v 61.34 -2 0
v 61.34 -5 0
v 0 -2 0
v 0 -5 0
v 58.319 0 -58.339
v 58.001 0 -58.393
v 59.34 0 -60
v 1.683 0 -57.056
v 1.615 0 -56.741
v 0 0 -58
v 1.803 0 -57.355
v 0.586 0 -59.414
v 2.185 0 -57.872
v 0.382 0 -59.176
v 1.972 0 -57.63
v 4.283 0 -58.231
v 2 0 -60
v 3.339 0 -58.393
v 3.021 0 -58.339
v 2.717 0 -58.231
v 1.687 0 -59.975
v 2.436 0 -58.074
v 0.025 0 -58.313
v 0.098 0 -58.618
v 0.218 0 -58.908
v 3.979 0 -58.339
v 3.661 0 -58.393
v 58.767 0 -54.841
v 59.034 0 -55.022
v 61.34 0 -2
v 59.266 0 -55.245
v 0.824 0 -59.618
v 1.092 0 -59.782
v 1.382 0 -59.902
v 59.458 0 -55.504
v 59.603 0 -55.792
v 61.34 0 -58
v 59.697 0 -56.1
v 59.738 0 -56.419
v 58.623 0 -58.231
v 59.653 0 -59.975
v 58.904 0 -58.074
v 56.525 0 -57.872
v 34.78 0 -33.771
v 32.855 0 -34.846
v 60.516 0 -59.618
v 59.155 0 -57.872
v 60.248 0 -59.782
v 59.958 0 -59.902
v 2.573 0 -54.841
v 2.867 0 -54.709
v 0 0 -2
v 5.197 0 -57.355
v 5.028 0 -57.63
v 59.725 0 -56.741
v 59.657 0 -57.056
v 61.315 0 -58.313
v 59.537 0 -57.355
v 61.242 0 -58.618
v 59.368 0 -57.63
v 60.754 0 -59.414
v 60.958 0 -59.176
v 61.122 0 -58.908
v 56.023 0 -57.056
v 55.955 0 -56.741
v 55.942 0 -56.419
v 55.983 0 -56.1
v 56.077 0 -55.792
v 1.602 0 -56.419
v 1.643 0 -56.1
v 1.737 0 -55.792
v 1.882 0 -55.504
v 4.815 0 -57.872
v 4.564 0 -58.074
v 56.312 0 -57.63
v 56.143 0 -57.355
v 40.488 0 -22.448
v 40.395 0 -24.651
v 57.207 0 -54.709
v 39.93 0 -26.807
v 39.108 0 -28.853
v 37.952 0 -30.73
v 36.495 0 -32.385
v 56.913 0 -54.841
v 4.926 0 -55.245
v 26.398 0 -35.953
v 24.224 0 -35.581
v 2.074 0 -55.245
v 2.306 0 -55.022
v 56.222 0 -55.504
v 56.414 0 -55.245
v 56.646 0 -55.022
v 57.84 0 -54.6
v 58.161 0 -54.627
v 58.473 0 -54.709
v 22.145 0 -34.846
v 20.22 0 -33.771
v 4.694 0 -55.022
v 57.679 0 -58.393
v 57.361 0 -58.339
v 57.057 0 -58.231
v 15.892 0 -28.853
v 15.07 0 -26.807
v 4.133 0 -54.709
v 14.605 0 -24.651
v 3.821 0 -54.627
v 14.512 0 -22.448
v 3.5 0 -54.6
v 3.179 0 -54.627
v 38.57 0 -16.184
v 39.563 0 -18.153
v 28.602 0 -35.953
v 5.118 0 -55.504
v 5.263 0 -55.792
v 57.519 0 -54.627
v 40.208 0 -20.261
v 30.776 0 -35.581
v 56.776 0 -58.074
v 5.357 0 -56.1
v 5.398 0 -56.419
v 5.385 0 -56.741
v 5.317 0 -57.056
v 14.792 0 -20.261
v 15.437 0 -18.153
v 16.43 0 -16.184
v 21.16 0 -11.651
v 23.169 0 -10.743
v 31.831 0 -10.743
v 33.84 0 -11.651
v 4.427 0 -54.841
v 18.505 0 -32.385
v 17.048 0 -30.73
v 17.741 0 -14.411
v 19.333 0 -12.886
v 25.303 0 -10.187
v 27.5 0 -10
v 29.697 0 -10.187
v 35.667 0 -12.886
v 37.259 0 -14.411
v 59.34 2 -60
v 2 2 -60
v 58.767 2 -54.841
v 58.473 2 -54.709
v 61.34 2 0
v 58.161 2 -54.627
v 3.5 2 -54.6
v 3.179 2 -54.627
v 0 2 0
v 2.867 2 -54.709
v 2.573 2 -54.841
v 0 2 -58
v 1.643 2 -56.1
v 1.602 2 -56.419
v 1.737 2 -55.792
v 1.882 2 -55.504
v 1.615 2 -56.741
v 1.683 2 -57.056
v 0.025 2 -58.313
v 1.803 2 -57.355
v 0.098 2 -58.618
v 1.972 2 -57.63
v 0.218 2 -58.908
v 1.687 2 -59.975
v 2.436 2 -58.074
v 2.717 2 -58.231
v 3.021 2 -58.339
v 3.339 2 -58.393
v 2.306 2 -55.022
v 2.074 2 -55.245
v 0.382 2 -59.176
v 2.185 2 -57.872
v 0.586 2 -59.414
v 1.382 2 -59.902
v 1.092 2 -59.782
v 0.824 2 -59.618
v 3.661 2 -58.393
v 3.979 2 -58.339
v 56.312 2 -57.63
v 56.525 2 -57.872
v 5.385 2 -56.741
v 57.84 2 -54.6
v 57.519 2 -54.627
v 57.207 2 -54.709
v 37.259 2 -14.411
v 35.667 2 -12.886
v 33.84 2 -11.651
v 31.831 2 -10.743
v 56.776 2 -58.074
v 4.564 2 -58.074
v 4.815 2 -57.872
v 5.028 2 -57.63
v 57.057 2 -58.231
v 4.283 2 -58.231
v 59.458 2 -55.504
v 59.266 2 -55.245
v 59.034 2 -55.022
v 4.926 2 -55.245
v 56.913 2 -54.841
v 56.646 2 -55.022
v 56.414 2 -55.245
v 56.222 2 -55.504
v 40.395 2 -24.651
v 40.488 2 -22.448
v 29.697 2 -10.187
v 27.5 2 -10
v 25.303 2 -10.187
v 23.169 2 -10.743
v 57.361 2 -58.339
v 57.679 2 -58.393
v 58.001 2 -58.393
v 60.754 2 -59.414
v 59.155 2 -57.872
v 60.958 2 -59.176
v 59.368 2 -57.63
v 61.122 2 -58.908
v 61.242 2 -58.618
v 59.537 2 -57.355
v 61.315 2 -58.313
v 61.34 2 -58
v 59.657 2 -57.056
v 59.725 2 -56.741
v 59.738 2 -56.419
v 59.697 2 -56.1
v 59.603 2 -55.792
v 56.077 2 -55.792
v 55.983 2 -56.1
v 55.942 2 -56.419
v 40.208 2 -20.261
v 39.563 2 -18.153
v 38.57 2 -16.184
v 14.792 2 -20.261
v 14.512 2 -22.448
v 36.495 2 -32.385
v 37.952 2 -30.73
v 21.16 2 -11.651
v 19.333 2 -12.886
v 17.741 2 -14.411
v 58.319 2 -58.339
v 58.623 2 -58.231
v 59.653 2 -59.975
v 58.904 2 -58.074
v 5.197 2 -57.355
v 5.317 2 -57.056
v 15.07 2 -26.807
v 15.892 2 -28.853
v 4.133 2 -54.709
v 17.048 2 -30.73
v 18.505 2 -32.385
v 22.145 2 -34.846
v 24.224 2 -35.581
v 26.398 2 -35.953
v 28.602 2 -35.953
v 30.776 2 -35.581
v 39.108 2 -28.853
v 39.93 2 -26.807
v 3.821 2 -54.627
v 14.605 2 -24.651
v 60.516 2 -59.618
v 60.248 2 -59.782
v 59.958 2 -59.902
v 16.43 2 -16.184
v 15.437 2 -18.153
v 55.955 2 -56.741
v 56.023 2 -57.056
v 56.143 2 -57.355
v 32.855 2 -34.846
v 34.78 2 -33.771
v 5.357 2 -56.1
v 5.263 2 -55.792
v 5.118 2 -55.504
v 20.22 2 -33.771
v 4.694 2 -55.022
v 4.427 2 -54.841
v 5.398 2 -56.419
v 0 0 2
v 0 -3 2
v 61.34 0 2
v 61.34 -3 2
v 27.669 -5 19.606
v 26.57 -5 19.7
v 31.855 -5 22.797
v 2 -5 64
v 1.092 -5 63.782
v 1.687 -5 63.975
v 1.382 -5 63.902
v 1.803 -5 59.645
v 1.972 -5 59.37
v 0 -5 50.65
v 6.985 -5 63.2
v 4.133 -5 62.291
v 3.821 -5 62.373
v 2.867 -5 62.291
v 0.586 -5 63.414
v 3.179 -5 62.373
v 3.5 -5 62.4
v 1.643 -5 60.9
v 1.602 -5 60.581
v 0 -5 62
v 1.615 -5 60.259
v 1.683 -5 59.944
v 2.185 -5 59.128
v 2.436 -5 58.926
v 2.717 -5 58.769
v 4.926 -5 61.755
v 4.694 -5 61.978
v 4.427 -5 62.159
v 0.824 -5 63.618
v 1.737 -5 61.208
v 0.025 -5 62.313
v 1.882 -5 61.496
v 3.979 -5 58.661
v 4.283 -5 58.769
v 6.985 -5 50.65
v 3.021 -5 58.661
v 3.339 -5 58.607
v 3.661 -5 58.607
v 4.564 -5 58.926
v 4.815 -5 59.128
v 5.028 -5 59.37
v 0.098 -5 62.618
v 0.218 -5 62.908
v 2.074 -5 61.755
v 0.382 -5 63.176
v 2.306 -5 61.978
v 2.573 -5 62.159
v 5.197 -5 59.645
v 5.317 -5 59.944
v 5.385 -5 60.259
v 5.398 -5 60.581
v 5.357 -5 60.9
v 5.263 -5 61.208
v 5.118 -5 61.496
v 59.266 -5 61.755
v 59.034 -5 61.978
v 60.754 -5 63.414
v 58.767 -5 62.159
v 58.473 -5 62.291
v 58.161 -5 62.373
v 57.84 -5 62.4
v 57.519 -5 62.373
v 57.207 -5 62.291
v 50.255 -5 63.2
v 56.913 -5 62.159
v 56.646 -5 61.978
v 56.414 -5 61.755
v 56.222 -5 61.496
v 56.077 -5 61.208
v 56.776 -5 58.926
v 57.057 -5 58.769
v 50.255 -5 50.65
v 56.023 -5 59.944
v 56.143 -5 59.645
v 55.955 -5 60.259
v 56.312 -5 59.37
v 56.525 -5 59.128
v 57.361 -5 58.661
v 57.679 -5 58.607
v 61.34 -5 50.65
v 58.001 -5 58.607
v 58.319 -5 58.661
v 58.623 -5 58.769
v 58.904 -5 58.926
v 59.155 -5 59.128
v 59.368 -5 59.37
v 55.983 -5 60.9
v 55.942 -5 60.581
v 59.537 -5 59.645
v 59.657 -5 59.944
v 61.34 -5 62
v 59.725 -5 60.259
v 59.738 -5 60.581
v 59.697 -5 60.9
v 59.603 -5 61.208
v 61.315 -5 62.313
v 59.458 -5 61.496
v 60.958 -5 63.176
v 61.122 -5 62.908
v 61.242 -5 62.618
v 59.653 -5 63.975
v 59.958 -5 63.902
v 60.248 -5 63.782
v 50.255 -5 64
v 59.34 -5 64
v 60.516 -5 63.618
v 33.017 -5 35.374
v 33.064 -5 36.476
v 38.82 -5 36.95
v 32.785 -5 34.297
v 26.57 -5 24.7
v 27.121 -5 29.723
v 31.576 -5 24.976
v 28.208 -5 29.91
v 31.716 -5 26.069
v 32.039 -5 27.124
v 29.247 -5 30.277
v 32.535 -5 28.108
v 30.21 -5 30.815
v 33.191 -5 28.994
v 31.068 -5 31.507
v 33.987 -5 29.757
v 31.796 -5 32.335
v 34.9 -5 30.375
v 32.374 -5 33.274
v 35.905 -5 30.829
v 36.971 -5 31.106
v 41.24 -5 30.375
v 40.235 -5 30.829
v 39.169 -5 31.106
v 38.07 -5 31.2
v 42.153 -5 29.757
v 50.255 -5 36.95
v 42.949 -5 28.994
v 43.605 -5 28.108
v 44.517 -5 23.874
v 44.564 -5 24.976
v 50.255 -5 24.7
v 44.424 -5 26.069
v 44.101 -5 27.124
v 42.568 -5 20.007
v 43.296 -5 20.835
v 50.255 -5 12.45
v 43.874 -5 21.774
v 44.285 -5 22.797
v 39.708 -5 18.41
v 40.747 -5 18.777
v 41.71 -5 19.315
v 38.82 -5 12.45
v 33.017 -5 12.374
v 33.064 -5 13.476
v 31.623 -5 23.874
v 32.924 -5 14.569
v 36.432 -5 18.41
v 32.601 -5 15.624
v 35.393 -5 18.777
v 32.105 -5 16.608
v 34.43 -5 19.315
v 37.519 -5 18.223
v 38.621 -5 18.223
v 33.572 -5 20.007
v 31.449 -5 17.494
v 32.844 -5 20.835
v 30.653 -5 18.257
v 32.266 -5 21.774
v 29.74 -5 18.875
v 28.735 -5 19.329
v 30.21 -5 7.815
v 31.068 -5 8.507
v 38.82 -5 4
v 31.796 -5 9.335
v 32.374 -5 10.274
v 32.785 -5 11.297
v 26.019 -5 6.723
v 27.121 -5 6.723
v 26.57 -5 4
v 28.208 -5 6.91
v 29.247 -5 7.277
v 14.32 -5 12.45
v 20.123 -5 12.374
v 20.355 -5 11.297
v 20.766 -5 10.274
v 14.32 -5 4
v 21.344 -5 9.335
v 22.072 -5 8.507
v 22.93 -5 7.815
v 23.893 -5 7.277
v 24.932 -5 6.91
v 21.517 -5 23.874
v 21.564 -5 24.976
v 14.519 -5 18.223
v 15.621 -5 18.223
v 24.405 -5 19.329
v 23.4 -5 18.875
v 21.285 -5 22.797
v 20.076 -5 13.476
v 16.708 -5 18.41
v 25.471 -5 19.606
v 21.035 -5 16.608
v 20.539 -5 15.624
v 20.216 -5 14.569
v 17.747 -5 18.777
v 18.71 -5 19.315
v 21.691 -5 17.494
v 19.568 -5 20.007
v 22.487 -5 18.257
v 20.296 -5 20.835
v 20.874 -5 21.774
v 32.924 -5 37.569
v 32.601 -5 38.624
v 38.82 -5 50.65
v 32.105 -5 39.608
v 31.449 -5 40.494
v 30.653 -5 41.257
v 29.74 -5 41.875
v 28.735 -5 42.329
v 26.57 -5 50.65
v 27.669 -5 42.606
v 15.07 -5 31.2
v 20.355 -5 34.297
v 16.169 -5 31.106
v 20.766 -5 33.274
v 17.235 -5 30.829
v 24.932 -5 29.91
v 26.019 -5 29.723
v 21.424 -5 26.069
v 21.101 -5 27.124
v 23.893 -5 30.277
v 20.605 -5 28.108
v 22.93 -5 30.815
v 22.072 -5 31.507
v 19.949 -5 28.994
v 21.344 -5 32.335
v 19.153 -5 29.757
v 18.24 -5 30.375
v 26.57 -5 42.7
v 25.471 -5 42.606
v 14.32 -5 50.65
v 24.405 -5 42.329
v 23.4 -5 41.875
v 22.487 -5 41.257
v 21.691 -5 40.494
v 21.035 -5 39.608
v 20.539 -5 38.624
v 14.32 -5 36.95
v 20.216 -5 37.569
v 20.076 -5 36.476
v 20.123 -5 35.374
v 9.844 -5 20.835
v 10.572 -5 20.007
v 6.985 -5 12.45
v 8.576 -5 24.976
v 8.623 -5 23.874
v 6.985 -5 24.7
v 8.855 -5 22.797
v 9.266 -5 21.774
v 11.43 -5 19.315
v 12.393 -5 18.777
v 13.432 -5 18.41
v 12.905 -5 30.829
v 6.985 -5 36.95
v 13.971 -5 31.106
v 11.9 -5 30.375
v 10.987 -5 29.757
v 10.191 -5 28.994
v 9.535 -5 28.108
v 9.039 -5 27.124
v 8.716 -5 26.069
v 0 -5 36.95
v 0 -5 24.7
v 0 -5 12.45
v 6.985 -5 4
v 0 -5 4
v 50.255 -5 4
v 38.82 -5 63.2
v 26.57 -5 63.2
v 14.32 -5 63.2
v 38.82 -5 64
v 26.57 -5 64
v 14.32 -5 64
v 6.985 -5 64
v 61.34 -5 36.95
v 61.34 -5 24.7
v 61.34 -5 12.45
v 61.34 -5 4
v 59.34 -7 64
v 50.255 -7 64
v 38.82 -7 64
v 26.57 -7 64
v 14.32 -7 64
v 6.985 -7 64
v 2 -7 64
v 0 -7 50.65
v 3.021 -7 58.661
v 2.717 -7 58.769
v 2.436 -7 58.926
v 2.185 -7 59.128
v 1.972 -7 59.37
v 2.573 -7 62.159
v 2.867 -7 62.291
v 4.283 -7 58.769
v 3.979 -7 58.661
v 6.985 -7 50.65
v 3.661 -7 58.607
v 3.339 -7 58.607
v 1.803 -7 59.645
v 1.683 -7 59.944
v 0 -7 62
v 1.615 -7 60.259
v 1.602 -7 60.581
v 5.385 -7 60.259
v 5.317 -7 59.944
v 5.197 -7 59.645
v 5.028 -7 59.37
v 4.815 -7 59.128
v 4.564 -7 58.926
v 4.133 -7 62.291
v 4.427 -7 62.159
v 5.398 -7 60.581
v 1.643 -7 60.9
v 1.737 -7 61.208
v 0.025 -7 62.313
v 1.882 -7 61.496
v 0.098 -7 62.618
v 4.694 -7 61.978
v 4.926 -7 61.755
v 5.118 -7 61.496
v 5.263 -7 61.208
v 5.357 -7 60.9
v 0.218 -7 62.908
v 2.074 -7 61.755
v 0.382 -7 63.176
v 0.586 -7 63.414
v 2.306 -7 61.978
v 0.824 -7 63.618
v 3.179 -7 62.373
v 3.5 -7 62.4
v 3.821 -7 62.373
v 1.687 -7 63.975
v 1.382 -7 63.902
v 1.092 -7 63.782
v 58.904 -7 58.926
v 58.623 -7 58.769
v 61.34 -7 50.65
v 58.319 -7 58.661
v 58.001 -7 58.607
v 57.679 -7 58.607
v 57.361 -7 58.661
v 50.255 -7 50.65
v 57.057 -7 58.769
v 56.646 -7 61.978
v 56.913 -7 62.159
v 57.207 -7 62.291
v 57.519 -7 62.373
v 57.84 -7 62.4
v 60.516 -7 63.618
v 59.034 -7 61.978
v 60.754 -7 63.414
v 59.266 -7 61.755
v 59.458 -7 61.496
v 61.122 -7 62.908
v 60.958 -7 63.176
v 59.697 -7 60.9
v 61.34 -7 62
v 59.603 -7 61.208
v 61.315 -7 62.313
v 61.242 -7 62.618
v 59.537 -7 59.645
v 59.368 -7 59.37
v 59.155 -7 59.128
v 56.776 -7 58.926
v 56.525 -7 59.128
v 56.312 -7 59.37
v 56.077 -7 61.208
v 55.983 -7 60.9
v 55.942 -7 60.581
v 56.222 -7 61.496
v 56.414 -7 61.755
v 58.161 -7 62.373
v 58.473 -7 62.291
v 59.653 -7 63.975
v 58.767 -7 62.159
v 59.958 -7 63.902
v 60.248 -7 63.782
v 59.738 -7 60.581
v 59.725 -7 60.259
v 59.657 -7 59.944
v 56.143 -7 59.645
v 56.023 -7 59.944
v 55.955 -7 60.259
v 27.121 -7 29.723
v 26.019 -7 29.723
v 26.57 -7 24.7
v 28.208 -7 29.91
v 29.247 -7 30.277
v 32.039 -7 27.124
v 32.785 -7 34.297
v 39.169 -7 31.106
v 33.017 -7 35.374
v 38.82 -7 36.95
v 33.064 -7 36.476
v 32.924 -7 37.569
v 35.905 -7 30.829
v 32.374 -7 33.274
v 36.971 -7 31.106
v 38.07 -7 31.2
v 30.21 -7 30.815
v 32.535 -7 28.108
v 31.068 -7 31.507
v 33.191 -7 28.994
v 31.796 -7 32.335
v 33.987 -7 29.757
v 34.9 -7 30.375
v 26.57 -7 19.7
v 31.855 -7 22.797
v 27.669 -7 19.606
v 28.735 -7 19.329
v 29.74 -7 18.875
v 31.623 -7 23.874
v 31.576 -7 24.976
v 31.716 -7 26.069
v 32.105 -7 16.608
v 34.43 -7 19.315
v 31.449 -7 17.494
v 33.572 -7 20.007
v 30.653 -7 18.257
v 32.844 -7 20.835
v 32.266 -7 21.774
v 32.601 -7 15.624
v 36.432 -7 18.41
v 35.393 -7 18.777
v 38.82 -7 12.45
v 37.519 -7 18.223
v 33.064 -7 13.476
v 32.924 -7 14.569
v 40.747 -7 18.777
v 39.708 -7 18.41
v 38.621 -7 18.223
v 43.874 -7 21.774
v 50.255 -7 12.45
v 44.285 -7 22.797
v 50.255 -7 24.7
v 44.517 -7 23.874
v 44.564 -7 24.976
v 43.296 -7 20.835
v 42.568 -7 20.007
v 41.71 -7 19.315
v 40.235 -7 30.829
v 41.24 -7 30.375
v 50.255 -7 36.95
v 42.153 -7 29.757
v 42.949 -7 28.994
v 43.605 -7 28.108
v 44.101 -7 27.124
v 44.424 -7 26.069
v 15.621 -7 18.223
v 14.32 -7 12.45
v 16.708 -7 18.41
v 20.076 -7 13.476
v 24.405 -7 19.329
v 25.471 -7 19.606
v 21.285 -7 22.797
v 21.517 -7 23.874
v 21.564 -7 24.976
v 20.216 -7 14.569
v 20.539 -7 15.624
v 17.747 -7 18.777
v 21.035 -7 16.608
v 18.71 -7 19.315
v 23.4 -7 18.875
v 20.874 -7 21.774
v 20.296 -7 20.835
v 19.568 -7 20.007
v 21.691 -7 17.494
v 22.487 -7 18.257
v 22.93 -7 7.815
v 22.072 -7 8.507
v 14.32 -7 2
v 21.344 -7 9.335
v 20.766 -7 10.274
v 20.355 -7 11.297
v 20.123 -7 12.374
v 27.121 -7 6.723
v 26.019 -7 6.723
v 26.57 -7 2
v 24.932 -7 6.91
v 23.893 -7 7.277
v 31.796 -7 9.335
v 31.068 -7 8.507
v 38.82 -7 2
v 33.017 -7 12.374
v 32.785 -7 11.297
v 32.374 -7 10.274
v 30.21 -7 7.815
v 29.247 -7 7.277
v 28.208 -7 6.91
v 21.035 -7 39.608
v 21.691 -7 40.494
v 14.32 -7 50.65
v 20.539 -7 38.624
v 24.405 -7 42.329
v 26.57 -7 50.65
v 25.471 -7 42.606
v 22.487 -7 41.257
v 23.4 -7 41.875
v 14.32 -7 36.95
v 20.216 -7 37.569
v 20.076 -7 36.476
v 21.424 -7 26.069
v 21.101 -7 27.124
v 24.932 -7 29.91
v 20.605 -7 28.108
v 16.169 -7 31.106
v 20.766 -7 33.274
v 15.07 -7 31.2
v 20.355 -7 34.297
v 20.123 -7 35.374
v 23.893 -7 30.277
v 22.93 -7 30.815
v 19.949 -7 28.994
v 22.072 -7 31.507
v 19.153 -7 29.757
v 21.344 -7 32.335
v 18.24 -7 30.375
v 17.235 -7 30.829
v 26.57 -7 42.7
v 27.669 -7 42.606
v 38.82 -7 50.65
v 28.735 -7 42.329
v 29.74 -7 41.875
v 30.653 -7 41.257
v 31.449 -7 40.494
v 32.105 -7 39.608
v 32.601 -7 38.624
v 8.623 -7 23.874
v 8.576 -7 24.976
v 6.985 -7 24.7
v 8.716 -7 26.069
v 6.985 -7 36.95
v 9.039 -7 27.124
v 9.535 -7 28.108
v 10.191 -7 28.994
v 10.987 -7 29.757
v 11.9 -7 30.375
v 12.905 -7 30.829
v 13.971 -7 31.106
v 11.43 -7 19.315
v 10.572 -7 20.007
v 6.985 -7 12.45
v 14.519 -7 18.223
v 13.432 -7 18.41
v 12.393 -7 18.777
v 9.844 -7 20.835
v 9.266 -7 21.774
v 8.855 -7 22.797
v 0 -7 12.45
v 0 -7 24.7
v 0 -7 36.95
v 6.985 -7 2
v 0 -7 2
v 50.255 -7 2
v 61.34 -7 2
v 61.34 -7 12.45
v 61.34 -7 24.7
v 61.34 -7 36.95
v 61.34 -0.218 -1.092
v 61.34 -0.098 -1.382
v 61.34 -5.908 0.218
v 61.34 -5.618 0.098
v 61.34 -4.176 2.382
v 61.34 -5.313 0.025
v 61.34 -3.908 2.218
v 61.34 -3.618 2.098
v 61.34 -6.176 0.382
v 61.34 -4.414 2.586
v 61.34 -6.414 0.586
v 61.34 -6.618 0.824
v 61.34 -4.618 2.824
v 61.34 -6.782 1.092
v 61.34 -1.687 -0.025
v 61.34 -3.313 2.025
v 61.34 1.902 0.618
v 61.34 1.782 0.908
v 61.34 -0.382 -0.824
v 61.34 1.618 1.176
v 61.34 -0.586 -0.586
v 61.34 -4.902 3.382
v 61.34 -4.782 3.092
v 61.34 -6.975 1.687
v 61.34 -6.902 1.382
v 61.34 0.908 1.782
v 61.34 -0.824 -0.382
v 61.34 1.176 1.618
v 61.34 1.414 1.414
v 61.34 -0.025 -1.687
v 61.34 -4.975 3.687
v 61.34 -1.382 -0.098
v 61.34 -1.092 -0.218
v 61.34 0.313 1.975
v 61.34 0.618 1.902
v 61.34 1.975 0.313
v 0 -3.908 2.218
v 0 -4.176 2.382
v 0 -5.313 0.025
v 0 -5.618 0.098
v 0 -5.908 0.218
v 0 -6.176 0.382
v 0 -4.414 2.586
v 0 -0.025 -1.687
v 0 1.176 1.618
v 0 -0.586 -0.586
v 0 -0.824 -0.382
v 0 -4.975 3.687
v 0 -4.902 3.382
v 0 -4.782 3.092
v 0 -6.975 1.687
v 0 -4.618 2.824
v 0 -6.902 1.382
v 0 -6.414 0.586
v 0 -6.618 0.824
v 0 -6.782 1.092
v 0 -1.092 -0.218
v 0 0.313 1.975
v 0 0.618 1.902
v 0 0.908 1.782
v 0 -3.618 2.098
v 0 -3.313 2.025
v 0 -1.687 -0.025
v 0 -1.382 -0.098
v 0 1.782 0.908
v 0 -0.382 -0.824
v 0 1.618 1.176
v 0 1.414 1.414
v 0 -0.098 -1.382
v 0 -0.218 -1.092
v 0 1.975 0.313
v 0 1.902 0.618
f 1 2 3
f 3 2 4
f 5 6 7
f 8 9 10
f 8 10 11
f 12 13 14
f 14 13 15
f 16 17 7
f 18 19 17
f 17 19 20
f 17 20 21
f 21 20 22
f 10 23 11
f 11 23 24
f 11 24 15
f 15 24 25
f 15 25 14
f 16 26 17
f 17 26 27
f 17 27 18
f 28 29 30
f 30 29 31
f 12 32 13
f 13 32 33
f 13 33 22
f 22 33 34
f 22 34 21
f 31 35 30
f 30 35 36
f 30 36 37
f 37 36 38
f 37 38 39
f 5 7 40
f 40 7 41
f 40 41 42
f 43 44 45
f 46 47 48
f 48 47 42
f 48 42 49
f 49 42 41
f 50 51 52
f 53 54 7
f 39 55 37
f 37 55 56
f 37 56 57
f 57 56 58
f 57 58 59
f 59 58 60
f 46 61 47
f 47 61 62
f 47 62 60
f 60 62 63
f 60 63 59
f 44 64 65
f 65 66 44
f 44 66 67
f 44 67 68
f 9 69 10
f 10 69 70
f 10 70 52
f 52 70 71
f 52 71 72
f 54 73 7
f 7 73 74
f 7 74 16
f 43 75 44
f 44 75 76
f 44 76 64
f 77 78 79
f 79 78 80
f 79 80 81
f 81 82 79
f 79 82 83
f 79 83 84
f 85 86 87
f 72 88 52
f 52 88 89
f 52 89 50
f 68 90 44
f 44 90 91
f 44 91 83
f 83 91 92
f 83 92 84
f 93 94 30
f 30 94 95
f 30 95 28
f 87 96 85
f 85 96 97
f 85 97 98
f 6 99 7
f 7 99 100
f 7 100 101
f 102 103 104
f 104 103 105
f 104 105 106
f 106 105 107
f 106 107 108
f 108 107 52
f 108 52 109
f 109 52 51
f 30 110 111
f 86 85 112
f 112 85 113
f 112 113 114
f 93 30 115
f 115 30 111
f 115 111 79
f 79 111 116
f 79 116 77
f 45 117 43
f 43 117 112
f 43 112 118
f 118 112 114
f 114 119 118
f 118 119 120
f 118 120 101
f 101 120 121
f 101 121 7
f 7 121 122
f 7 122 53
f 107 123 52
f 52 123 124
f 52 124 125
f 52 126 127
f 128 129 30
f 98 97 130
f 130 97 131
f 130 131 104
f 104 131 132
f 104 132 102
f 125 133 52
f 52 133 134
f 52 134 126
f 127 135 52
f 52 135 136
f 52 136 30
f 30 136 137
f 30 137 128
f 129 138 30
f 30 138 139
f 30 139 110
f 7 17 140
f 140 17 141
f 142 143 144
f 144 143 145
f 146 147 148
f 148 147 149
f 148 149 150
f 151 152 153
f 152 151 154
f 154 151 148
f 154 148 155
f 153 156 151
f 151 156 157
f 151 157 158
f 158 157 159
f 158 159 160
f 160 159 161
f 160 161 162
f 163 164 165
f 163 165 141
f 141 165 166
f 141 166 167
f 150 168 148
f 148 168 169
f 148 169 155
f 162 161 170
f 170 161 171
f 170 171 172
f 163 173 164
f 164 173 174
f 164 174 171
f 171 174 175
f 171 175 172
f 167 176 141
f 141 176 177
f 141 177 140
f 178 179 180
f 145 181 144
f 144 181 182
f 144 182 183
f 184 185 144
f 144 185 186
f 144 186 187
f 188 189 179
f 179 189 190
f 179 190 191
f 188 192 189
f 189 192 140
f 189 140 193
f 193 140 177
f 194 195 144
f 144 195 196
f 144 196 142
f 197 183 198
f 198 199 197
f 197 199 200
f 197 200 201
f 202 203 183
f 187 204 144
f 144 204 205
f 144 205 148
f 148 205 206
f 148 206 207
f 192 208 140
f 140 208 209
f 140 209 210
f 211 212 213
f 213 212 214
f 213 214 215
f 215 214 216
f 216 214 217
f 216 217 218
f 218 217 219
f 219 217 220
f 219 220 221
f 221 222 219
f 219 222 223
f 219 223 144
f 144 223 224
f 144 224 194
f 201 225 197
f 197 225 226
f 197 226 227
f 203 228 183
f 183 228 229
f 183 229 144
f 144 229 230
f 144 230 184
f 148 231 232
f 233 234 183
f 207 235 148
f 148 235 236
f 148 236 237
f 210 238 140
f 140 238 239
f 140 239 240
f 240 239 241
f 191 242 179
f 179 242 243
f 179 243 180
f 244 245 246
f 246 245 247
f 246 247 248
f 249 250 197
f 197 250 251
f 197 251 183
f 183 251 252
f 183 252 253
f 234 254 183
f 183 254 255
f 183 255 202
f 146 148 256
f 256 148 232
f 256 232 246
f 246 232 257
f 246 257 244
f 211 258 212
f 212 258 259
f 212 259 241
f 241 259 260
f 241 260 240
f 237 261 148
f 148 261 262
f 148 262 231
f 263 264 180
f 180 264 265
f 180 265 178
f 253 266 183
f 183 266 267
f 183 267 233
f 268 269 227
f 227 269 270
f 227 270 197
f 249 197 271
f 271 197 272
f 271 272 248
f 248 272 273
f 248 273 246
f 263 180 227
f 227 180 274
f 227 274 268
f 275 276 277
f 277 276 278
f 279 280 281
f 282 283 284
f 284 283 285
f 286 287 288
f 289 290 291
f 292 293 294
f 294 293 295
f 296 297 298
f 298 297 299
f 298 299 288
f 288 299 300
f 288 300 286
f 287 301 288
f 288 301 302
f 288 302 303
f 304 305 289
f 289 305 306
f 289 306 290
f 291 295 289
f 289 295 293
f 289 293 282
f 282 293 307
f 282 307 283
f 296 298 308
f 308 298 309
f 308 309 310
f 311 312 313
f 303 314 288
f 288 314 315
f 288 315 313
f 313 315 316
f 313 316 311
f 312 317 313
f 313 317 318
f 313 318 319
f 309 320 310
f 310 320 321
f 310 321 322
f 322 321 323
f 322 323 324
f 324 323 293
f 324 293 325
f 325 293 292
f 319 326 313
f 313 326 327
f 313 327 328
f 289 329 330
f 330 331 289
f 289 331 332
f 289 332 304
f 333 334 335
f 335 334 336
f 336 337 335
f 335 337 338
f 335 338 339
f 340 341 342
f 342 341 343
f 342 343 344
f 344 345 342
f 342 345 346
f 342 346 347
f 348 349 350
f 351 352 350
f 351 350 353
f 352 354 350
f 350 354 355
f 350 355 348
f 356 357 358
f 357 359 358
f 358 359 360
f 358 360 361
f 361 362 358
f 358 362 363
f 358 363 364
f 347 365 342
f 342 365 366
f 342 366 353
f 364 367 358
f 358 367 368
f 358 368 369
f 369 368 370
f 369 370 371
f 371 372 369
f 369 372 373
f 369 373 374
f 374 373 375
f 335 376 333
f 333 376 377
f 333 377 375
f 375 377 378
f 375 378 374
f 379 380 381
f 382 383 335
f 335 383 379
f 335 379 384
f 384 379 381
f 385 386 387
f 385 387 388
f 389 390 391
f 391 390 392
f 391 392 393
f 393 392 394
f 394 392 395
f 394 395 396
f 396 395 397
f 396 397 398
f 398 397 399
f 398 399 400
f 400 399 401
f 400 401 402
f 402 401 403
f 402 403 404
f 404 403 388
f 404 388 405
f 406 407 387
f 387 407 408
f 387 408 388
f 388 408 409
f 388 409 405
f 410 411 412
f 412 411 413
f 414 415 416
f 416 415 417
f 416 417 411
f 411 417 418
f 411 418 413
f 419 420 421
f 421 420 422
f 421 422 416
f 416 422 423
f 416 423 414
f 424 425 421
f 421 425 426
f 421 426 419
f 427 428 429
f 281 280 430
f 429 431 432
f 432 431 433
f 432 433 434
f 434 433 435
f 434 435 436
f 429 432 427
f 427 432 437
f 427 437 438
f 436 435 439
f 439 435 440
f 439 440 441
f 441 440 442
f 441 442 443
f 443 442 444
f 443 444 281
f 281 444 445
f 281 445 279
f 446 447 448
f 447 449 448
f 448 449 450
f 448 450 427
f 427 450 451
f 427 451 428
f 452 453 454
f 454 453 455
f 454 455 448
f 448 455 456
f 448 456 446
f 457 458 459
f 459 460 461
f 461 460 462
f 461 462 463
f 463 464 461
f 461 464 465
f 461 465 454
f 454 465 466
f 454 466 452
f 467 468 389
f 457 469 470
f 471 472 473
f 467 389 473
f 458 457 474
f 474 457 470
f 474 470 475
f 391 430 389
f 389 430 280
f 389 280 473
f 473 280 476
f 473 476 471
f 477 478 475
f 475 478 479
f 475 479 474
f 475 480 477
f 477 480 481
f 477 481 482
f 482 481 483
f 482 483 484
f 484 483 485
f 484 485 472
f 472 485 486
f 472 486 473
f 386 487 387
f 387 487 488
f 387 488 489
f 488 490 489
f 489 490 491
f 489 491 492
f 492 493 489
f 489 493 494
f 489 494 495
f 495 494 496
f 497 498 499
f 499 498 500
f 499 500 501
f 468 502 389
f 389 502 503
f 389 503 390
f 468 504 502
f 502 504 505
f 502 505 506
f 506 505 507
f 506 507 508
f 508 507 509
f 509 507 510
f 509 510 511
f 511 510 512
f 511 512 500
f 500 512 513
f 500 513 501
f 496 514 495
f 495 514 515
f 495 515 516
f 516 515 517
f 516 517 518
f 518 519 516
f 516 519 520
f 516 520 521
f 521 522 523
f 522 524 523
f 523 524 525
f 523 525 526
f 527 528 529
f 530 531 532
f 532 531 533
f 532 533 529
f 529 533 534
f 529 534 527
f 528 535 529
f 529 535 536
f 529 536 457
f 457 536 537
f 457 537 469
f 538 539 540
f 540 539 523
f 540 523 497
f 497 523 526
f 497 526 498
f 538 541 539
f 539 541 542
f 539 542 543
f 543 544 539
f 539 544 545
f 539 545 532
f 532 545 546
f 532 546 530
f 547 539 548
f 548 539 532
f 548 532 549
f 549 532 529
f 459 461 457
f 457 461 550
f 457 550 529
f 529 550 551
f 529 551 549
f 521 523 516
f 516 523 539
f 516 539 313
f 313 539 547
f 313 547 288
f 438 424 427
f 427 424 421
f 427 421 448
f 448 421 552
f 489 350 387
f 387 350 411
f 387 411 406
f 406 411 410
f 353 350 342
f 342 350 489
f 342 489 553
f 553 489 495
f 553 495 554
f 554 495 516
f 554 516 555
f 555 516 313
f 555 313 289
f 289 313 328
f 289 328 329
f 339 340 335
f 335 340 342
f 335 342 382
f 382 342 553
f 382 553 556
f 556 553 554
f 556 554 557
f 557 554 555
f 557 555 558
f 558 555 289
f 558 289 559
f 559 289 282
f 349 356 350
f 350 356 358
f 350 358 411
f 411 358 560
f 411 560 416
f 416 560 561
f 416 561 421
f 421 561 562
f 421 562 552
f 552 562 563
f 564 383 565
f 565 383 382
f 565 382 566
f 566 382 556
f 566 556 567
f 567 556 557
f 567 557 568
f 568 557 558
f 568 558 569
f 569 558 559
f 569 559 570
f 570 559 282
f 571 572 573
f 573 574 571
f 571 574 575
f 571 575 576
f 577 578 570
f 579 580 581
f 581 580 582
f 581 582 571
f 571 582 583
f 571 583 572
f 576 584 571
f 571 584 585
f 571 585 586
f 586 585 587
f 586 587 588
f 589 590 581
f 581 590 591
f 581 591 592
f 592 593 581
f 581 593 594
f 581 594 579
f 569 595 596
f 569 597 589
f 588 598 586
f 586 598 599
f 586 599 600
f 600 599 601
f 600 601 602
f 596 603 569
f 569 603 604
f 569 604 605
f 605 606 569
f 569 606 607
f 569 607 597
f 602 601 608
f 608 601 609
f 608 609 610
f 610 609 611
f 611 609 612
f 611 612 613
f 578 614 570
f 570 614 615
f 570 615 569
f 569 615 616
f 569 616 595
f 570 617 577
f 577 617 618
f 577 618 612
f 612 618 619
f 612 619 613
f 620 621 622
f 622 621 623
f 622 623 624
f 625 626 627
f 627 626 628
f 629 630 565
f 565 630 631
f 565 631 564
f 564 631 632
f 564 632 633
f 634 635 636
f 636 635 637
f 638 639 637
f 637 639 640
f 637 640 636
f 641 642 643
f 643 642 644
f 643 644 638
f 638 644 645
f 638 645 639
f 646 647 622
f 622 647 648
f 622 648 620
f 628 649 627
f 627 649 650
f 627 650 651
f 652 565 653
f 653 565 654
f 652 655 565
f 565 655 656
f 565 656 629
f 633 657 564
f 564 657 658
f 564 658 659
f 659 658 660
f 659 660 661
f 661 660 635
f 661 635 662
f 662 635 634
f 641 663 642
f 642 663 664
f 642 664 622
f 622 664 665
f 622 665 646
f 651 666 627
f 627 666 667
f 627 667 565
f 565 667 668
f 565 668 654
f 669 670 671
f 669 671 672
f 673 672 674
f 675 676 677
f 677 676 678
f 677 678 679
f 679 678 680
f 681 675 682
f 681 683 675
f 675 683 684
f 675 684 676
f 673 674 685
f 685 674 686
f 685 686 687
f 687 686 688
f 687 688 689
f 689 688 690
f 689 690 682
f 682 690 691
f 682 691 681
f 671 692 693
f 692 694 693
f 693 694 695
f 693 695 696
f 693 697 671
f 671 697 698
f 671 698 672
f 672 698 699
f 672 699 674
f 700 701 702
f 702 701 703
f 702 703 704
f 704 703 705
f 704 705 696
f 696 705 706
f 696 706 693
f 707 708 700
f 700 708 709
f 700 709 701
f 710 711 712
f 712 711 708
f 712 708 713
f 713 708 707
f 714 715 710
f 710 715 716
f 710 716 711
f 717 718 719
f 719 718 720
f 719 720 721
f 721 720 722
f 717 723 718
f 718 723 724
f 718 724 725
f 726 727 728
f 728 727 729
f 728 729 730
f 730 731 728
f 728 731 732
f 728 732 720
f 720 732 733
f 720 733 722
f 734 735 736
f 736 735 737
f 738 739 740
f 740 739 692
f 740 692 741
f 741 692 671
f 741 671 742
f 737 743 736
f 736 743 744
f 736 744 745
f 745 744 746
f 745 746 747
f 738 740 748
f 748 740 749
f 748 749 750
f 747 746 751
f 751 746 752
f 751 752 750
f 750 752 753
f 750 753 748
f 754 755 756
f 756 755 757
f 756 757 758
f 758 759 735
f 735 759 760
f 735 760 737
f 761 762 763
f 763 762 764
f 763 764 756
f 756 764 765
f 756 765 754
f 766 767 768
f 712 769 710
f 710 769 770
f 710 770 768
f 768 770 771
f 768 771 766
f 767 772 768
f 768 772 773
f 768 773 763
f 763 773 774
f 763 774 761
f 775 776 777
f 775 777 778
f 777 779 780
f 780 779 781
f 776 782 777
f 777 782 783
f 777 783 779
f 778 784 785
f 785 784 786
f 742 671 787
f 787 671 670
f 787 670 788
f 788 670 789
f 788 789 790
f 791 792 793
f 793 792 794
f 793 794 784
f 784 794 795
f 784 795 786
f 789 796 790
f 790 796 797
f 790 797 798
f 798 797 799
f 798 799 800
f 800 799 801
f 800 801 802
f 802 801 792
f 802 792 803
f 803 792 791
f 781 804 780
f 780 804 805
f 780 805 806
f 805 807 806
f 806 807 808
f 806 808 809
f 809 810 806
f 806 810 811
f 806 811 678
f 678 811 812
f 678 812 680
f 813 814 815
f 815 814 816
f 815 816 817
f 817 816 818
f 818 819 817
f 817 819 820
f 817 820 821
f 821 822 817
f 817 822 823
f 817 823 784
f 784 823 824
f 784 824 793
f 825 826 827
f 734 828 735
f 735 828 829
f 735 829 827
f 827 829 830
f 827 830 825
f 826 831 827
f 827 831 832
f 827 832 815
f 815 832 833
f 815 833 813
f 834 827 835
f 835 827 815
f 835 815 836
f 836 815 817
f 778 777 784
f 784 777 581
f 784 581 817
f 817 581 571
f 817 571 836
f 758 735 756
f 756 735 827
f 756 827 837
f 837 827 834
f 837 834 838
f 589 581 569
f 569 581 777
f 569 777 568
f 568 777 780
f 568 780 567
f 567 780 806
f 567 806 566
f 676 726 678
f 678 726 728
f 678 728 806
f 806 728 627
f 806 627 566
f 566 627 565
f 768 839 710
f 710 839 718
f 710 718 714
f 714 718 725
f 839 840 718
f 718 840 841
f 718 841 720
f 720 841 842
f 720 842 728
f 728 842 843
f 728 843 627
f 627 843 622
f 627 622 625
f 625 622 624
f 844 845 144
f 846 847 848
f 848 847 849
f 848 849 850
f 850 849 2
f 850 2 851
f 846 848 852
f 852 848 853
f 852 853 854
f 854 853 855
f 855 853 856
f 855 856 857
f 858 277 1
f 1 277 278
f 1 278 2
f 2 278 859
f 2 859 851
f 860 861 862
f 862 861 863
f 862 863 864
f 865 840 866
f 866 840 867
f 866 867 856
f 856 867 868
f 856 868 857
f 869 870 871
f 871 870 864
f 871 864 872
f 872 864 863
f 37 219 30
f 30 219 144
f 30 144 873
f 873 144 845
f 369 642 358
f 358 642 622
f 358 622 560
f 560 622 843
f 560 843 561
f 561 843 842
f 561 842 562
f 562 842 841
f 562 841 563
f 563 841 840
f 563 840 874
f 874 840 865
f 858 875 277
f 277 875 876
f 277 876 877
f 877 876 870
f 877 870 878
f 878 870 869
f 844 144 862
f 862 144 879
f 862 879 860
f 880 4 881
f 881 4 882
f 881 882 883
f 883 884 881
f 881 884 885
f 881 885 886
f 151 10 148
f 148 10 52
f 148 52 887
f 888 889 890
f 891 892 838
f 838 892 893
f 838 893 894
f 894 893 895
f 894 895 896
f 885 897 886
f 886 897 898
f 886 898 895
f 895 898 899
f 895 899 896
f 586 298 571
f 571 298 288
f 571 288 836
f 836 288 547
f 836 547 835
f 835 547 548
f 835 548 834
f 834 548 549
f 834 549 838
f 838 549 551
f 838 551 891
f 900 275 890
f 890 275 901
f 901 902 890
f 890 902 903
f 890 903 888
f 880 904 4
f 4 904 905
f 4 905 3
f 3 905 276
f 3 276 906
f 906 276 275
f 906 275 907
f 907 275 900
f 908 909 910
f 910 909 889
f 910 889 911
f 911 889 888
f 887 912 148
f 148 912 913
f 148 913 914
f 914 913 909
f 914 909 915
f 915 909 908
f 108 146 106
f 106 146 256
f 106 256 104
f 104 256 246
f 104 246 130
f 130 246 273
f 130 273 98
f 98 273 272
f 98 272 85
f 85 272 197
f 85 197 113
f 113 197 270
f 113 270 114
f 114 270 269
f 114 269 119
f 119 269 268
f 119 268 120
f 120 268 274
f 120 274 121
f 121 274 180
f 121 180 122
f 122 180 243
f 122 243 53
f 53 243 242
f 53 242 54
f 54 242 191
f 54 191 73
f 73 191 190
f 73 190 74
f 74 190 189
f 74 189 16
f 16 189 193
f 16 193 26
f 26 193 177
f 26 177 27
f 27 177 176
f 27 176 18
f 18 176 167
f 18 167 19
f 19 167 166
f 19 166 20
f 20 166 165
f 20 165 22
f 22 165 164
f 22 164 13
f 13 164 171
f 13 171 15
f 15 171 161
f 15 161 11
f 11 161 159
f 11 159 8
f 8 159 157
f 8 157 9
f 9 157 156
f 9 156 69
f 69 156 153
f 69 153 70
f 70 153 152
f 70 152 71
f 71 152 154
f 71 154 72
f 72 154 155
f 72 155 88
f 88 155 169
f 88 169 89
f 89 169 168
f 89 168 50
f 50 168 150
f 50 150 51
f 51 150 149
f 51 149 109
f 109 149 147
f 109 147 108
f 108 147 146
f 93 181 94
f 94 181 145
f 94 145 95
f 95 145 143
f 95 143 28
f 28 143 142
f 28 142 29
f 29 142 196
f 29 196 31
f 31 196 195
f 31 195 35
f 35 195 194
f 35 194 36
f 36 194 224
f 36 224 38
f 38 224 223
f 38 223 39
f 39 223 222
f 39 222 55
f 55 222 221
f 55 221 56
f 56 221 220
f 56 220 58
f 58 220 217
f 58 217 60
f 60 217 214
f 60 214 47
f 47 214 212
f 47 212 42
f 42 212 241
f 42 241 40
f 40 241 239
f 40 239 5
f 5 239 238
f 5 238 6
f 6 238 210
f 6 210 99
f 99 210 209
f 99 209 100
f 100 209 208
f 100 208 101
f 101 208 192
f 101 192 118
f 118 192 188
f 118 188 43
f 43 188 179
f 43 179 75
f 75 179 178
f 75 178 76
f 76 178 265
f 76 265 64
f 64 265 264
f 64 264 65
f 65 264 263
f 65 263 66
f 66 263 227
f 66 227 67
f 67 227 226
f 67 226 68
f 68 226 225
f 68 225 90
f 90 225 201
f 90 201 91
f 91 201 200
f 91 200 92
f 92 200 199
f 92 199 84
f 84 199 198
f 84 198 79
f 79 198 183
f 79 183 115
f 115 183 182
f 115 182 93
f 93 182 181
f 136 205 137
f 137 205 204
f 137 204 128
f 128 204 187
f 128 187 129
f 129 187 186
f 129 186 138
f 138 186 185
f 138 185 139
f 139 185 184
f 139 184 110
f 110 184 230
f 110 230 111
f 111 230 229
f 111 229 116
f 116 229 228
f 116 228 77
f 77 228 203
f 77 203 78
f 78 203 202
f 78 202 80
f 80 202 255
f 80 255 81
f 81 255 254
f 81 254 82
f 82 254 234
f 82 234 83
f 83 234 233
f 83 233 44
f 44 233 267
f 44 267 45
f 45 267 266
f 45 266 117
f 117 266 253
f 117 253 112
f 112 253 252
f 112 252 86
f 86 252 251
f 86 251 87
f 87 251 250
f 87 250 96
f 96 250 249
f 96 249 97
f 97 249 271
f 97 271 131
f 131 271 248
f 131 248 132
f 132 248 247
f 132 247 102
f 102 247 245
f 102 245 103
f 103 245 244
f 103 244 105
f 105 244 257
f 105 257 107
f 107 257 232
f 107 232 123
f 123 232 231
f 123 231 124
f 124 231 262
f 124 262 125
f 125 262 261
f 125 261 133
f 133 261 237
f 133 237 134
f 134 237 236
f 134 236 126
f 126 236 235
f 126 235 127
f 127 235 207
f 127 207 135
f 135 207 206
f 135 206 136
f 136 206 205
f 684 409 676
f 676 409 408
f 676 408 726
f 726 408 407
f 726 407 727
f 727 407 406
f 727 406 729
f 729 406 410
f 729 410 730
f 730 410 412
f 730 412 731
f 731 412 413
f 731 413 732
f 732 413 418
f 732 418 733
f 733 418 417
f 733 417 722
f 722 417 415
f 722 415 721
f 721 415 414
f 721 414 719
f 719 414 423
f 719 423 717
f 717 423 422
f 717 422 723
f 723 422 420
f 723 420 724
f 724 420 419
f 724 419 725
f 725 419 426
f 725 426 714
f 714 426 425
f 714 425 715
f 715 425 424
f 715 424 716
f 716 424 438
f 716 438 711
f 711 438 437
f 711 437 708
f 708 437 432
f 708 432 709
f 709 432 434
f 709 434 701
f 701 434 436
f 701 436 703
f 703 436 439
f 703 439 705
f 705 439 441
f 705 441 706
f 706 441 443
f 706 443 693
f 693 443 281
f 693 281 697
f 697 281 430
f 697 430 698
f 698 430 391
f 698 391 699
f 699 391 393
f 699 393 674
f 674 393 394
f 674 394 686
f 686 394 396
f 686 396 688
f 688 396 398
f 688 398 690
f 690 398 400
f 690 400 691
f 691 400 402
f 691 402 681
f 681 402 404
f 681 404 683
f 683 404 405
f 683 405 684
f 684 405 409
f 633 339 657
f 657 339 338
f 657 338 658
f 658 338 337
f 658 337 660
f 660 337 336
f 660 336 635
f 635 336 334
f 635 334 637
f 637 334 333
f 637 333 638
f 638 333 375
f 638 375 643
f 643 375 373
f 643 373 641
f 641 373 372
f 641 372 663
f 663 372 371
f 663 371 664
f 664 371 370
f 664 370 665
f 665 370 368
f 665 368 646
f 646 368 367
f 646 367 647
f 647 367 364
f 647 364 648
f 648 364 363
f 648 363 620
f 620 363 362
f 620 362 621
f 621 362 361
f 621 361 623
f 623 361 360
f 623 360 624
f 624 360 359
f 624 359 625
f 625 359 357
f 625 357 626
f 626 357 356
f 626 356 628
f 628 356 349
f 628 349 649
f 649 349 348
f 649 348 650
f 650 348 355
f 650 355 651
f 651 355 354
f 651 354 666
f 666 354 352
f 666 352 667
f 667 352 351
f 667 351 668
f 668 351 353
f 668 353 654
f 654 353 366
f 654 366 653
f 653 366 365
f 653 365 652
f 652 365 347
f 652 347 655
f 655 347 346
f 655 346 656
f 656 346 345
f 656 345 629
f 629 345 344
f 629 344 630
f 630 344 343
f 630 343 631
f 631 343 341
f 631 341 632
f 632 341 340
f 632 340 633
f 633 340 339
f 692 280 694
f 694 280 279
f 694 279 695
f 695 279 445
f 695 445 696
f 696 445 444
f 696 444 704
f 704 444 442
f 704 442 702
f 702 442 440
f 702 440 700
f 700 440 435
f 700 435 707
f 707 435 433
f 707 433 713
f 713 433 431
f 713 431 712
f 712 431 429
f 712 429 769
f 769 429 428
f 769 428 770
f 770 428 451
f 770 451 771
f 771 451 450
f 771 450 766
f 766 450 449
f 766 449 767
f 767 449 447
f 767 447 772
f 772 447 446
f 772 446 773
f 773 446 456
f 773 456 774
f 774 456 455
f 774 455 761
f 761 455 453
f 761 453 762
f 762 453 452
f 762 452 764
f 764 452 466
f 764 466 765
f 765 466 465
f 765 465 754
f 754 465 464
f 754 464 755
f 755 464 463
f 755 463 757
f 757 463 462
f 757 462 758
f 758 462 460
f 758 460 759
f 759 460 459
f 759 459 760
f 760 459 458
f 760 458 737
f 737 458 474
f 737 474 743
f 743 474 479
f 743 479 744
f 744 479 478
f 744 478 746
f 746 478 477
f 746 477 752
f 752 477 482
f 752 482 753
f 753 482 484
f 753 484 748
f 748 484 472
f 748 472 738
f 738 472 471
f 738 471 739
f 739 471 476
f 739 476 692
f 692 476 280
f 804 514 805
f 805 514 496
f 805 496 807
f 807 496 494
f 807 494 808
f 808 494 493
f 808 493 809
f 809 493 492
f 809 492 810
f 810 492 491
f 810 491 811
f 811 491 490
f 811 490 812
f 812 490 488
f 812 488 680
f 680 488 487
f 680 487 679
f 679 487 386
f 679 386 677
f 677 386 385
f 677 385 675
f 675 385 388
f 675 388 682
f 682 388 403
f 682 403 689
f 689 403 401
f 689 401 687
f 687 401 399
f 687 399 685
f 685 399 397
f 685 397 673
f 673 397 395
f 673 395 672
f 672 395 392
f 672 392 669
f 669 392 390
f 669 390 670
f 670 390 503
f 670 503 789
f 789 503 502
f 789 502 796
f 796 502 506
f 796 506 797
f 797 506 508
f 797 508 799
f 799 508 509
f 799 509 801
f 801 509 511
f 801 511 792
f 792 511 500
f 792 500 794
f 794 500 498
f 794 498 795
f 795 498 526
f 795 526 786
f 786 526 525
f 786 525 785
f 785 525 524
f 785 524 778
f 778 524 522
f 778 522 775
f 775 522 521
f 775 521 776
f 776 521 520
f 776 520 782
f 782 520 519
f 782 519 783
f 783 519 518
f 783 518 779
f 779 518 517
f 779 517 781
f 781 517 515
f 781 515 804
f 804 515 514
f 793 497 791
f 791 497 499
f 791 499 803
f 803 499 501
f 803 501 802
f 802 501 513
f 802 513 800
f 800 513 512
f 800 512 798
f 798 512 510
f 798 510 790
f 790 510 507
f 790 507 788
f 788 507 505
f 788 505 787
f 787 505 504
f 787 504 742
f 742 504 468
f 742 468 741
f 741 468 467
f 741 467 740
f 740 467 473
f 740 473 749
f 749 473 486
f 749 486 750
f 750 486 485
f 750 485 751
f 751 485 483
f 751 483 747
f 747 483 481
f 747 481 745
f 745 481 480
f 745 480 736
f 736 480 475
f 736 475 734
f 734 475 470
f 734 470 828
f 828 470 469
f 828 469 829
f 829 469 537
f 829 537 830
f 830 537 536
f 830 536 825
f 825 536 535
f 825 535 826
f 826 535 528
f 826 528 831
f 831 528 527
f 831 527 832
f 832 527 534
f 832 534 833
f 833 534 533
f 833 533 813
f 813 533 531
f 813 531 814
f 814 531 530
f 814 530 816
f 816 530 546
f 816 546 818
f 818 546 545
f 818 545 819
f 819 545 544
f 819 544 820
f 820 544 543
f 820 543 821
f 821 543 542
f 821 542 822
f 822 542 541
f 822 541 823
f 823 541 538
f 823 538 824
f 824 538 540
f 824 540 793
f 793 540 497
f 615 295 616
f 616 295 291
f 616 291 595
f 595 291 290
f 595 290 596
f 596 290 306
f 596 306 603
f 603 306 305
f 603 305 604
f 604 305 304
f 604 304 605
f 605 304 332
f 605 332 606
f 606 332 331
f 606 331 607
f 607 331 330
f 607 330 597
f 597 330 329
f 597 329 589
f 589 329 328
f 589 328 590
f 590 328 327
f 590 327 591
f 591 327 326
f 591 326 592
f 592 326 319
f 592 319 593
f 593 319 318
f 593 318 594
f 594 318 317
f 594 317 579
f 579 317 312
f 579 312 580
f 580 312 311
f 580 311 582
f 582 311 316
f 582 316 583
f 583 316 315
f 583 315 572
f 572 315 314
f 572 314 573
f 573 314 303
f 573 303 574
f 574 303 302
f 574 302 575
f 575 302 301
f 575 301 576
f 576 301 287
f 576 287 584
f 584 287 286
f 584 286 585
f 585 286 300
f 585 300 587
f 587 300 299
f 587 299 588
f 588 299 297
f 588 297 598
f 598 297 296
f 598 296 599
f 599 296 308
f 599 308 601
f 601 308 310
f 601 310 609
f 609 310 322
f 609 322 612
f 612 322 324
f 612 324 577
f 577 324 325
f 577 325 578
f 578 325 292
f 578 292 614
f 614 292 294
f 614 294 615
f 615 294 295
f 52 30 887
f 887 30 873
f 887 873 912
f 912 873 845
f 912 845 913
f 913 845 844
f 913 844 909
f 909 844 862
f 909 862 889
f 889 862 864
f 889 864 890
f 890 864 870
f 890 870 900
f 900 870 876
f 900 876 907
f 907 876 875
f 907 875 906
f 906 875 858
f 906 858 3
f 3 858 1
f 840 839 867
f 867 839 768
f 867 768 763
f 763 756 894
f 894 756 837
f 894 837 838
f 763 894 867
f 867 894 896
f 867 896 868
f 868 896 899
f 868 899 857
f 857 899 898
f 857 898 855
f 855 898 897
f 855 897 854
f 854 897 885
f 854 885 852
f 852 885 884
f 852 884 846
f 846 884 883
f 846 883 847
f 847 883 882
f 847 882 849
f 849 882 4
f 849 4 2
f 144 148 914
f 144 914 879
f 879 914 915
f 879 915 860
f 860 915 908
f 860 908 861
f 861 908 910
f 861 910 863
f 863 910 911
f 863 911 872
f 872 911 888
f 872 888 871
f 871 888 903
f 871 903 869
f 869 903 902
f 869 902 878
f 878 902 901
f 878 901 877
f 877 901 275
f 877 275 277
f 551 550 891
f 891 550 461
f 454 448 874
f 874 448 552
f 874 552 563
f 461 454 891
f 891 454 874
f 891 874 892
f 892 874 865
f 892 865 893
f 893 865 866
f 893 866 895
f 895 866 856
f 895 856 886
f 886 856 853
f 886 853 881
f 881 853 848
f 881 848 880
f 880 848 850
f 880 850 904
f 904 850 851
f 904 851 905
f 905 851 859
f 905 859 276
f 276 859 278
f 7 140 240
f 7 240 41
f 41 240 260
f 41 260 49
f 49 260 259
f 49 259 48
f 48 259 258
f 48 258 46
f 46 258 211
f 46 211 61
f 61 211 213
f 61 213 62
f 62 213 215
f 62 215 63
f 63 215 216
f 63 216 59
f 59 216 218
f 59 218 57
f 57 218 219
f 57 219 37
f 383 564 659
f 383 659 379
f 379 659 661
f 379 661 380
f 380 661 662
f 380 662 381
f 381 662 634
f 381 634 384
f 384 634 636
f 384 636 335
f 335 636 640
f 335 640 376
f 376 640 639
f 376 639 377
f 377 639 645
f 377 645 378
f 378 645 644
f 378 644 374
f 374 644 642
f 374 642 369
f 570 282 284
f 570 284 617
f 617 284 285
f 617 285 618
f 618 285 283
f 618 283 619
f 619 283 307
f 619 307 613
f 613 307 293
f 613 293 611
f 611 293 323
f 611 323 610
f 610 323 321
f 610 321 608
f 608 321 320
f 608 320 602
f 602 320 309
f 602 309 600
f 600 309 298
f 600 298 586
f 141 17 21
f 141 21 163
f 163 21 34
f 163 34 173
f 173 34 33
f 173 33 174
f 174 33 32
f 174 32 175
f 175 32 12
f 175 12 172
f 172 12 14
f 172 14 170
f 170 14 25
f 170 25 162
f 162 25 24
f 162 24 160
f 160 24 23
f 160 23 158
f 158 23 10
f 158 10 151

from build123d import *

# Parameters (mm, degrees)
BOSS_EXTRUDE1_DEPTH = 61.34
SKETCH3_R           = 13
SKETCH3_R_2         = 1.9
CUT_EXTRUDE1_DEPTH  = 90.104408421
SKETCH4_R           = 6.5
SKETCH4_R_2         = 1.9
CUT_EXTRUDE2_DEPTH  = 89.924662496
FILLET1_R           = 2
FILLET3_R           = 2


with BuildPart() as part:
    # Sketch2 → Boss-Extrude1 (new body)
    with BuildSketch(Plane(origin=(0, 0, 0), x_dir=(0, 0, -1), z_dir=(1, 0, 0))):
        Polygon((0, 0), (60, 0), (60, 2), (-2, 2), (-2, -5), (-64, -5), (-64, -7), (0, -7), align=None)
    extrude(amount=BOSS_EXTRUDE1_DEPTH)

    # Sketch3 → Cut-Extrude1 (cut, through all)
    with BuildSketch(Plane(origin=(0, 2, 0), x_dir=(1, 0, 0), z_dir=(0, 1, 0))):
        with Locations(Location((27.5, 23, 0), (0, 0, 270))):
            Circle(SKETCH3_R)
        with Locations(Location((57.84, 56.5, 0), (0, 0, 270))):
            Circle(SKETCH3_R_2)
        with Locations(Location((3.5, 56.5, 0), (0, 0, 270))):
            Circle(SKETCH3_R_2)
    extrude(amount=-CUT_EXTRUDE1_DEPTH, mode=Mode.SUBTRACT)

    # Sketch4 → Cut-Extrude2 (cut, through all)
    with BuildSketch(Plane(origin=(0, -5, 0), x_dir=(1, 0, 0), z_dir=(0, 1, 0))):
        with Locations(Location((38.07, -24.7, 0), (0, 0, 270))):
            Circle(SKETCH4_R)
        with Locations(Location((26.57, -36.2, 0), (0, 0, 270))):
            Circle(SKETCH4_R)
        with Locations(Location((15.07, -24.7, 0), (0, 0, 270))):
            Circle(SKETCH4_R)
        with Locations(Location((26.57, -13.2, 0), (0, 0, 270))):
            Circle(SKETCH4_R)
        with Locations(Location((57.84, -60.5, 0), (0, 0, 270))):
            Circle(SKETCH4_R_2)
        with Locations(Location((3.5, -60.5, 0), (0, 0, 270))):
            Circle(SKETCH4_R_2)
    extrude(amount=-CUT_EXTRUDE2_DEPTH, mode=Mode.SUBTRACT)

    # Fillet1
    fillet1_edges = [part.edges().sort_by_distance(p)[0] for p in [
        (30.67, -7, 0),
        (30.67, -5, 2),
        (30.67, 2, 2),
        (30.67, 0, 0),
    ]]
    fillet(fillet1_edges, radius=FILLET1_R)

    # Fillet3
    fillet3_edges = [part.edges().sort_by_distance(p)[0] for p in [
        (0, 1, -60),
        (61.34, 1, -60),
        (61.34, -6, 64),
        (0, -6, 64),
    ]]
    fillet(fillet3_edges, radius=FILLET3_R)


solid = part.part
